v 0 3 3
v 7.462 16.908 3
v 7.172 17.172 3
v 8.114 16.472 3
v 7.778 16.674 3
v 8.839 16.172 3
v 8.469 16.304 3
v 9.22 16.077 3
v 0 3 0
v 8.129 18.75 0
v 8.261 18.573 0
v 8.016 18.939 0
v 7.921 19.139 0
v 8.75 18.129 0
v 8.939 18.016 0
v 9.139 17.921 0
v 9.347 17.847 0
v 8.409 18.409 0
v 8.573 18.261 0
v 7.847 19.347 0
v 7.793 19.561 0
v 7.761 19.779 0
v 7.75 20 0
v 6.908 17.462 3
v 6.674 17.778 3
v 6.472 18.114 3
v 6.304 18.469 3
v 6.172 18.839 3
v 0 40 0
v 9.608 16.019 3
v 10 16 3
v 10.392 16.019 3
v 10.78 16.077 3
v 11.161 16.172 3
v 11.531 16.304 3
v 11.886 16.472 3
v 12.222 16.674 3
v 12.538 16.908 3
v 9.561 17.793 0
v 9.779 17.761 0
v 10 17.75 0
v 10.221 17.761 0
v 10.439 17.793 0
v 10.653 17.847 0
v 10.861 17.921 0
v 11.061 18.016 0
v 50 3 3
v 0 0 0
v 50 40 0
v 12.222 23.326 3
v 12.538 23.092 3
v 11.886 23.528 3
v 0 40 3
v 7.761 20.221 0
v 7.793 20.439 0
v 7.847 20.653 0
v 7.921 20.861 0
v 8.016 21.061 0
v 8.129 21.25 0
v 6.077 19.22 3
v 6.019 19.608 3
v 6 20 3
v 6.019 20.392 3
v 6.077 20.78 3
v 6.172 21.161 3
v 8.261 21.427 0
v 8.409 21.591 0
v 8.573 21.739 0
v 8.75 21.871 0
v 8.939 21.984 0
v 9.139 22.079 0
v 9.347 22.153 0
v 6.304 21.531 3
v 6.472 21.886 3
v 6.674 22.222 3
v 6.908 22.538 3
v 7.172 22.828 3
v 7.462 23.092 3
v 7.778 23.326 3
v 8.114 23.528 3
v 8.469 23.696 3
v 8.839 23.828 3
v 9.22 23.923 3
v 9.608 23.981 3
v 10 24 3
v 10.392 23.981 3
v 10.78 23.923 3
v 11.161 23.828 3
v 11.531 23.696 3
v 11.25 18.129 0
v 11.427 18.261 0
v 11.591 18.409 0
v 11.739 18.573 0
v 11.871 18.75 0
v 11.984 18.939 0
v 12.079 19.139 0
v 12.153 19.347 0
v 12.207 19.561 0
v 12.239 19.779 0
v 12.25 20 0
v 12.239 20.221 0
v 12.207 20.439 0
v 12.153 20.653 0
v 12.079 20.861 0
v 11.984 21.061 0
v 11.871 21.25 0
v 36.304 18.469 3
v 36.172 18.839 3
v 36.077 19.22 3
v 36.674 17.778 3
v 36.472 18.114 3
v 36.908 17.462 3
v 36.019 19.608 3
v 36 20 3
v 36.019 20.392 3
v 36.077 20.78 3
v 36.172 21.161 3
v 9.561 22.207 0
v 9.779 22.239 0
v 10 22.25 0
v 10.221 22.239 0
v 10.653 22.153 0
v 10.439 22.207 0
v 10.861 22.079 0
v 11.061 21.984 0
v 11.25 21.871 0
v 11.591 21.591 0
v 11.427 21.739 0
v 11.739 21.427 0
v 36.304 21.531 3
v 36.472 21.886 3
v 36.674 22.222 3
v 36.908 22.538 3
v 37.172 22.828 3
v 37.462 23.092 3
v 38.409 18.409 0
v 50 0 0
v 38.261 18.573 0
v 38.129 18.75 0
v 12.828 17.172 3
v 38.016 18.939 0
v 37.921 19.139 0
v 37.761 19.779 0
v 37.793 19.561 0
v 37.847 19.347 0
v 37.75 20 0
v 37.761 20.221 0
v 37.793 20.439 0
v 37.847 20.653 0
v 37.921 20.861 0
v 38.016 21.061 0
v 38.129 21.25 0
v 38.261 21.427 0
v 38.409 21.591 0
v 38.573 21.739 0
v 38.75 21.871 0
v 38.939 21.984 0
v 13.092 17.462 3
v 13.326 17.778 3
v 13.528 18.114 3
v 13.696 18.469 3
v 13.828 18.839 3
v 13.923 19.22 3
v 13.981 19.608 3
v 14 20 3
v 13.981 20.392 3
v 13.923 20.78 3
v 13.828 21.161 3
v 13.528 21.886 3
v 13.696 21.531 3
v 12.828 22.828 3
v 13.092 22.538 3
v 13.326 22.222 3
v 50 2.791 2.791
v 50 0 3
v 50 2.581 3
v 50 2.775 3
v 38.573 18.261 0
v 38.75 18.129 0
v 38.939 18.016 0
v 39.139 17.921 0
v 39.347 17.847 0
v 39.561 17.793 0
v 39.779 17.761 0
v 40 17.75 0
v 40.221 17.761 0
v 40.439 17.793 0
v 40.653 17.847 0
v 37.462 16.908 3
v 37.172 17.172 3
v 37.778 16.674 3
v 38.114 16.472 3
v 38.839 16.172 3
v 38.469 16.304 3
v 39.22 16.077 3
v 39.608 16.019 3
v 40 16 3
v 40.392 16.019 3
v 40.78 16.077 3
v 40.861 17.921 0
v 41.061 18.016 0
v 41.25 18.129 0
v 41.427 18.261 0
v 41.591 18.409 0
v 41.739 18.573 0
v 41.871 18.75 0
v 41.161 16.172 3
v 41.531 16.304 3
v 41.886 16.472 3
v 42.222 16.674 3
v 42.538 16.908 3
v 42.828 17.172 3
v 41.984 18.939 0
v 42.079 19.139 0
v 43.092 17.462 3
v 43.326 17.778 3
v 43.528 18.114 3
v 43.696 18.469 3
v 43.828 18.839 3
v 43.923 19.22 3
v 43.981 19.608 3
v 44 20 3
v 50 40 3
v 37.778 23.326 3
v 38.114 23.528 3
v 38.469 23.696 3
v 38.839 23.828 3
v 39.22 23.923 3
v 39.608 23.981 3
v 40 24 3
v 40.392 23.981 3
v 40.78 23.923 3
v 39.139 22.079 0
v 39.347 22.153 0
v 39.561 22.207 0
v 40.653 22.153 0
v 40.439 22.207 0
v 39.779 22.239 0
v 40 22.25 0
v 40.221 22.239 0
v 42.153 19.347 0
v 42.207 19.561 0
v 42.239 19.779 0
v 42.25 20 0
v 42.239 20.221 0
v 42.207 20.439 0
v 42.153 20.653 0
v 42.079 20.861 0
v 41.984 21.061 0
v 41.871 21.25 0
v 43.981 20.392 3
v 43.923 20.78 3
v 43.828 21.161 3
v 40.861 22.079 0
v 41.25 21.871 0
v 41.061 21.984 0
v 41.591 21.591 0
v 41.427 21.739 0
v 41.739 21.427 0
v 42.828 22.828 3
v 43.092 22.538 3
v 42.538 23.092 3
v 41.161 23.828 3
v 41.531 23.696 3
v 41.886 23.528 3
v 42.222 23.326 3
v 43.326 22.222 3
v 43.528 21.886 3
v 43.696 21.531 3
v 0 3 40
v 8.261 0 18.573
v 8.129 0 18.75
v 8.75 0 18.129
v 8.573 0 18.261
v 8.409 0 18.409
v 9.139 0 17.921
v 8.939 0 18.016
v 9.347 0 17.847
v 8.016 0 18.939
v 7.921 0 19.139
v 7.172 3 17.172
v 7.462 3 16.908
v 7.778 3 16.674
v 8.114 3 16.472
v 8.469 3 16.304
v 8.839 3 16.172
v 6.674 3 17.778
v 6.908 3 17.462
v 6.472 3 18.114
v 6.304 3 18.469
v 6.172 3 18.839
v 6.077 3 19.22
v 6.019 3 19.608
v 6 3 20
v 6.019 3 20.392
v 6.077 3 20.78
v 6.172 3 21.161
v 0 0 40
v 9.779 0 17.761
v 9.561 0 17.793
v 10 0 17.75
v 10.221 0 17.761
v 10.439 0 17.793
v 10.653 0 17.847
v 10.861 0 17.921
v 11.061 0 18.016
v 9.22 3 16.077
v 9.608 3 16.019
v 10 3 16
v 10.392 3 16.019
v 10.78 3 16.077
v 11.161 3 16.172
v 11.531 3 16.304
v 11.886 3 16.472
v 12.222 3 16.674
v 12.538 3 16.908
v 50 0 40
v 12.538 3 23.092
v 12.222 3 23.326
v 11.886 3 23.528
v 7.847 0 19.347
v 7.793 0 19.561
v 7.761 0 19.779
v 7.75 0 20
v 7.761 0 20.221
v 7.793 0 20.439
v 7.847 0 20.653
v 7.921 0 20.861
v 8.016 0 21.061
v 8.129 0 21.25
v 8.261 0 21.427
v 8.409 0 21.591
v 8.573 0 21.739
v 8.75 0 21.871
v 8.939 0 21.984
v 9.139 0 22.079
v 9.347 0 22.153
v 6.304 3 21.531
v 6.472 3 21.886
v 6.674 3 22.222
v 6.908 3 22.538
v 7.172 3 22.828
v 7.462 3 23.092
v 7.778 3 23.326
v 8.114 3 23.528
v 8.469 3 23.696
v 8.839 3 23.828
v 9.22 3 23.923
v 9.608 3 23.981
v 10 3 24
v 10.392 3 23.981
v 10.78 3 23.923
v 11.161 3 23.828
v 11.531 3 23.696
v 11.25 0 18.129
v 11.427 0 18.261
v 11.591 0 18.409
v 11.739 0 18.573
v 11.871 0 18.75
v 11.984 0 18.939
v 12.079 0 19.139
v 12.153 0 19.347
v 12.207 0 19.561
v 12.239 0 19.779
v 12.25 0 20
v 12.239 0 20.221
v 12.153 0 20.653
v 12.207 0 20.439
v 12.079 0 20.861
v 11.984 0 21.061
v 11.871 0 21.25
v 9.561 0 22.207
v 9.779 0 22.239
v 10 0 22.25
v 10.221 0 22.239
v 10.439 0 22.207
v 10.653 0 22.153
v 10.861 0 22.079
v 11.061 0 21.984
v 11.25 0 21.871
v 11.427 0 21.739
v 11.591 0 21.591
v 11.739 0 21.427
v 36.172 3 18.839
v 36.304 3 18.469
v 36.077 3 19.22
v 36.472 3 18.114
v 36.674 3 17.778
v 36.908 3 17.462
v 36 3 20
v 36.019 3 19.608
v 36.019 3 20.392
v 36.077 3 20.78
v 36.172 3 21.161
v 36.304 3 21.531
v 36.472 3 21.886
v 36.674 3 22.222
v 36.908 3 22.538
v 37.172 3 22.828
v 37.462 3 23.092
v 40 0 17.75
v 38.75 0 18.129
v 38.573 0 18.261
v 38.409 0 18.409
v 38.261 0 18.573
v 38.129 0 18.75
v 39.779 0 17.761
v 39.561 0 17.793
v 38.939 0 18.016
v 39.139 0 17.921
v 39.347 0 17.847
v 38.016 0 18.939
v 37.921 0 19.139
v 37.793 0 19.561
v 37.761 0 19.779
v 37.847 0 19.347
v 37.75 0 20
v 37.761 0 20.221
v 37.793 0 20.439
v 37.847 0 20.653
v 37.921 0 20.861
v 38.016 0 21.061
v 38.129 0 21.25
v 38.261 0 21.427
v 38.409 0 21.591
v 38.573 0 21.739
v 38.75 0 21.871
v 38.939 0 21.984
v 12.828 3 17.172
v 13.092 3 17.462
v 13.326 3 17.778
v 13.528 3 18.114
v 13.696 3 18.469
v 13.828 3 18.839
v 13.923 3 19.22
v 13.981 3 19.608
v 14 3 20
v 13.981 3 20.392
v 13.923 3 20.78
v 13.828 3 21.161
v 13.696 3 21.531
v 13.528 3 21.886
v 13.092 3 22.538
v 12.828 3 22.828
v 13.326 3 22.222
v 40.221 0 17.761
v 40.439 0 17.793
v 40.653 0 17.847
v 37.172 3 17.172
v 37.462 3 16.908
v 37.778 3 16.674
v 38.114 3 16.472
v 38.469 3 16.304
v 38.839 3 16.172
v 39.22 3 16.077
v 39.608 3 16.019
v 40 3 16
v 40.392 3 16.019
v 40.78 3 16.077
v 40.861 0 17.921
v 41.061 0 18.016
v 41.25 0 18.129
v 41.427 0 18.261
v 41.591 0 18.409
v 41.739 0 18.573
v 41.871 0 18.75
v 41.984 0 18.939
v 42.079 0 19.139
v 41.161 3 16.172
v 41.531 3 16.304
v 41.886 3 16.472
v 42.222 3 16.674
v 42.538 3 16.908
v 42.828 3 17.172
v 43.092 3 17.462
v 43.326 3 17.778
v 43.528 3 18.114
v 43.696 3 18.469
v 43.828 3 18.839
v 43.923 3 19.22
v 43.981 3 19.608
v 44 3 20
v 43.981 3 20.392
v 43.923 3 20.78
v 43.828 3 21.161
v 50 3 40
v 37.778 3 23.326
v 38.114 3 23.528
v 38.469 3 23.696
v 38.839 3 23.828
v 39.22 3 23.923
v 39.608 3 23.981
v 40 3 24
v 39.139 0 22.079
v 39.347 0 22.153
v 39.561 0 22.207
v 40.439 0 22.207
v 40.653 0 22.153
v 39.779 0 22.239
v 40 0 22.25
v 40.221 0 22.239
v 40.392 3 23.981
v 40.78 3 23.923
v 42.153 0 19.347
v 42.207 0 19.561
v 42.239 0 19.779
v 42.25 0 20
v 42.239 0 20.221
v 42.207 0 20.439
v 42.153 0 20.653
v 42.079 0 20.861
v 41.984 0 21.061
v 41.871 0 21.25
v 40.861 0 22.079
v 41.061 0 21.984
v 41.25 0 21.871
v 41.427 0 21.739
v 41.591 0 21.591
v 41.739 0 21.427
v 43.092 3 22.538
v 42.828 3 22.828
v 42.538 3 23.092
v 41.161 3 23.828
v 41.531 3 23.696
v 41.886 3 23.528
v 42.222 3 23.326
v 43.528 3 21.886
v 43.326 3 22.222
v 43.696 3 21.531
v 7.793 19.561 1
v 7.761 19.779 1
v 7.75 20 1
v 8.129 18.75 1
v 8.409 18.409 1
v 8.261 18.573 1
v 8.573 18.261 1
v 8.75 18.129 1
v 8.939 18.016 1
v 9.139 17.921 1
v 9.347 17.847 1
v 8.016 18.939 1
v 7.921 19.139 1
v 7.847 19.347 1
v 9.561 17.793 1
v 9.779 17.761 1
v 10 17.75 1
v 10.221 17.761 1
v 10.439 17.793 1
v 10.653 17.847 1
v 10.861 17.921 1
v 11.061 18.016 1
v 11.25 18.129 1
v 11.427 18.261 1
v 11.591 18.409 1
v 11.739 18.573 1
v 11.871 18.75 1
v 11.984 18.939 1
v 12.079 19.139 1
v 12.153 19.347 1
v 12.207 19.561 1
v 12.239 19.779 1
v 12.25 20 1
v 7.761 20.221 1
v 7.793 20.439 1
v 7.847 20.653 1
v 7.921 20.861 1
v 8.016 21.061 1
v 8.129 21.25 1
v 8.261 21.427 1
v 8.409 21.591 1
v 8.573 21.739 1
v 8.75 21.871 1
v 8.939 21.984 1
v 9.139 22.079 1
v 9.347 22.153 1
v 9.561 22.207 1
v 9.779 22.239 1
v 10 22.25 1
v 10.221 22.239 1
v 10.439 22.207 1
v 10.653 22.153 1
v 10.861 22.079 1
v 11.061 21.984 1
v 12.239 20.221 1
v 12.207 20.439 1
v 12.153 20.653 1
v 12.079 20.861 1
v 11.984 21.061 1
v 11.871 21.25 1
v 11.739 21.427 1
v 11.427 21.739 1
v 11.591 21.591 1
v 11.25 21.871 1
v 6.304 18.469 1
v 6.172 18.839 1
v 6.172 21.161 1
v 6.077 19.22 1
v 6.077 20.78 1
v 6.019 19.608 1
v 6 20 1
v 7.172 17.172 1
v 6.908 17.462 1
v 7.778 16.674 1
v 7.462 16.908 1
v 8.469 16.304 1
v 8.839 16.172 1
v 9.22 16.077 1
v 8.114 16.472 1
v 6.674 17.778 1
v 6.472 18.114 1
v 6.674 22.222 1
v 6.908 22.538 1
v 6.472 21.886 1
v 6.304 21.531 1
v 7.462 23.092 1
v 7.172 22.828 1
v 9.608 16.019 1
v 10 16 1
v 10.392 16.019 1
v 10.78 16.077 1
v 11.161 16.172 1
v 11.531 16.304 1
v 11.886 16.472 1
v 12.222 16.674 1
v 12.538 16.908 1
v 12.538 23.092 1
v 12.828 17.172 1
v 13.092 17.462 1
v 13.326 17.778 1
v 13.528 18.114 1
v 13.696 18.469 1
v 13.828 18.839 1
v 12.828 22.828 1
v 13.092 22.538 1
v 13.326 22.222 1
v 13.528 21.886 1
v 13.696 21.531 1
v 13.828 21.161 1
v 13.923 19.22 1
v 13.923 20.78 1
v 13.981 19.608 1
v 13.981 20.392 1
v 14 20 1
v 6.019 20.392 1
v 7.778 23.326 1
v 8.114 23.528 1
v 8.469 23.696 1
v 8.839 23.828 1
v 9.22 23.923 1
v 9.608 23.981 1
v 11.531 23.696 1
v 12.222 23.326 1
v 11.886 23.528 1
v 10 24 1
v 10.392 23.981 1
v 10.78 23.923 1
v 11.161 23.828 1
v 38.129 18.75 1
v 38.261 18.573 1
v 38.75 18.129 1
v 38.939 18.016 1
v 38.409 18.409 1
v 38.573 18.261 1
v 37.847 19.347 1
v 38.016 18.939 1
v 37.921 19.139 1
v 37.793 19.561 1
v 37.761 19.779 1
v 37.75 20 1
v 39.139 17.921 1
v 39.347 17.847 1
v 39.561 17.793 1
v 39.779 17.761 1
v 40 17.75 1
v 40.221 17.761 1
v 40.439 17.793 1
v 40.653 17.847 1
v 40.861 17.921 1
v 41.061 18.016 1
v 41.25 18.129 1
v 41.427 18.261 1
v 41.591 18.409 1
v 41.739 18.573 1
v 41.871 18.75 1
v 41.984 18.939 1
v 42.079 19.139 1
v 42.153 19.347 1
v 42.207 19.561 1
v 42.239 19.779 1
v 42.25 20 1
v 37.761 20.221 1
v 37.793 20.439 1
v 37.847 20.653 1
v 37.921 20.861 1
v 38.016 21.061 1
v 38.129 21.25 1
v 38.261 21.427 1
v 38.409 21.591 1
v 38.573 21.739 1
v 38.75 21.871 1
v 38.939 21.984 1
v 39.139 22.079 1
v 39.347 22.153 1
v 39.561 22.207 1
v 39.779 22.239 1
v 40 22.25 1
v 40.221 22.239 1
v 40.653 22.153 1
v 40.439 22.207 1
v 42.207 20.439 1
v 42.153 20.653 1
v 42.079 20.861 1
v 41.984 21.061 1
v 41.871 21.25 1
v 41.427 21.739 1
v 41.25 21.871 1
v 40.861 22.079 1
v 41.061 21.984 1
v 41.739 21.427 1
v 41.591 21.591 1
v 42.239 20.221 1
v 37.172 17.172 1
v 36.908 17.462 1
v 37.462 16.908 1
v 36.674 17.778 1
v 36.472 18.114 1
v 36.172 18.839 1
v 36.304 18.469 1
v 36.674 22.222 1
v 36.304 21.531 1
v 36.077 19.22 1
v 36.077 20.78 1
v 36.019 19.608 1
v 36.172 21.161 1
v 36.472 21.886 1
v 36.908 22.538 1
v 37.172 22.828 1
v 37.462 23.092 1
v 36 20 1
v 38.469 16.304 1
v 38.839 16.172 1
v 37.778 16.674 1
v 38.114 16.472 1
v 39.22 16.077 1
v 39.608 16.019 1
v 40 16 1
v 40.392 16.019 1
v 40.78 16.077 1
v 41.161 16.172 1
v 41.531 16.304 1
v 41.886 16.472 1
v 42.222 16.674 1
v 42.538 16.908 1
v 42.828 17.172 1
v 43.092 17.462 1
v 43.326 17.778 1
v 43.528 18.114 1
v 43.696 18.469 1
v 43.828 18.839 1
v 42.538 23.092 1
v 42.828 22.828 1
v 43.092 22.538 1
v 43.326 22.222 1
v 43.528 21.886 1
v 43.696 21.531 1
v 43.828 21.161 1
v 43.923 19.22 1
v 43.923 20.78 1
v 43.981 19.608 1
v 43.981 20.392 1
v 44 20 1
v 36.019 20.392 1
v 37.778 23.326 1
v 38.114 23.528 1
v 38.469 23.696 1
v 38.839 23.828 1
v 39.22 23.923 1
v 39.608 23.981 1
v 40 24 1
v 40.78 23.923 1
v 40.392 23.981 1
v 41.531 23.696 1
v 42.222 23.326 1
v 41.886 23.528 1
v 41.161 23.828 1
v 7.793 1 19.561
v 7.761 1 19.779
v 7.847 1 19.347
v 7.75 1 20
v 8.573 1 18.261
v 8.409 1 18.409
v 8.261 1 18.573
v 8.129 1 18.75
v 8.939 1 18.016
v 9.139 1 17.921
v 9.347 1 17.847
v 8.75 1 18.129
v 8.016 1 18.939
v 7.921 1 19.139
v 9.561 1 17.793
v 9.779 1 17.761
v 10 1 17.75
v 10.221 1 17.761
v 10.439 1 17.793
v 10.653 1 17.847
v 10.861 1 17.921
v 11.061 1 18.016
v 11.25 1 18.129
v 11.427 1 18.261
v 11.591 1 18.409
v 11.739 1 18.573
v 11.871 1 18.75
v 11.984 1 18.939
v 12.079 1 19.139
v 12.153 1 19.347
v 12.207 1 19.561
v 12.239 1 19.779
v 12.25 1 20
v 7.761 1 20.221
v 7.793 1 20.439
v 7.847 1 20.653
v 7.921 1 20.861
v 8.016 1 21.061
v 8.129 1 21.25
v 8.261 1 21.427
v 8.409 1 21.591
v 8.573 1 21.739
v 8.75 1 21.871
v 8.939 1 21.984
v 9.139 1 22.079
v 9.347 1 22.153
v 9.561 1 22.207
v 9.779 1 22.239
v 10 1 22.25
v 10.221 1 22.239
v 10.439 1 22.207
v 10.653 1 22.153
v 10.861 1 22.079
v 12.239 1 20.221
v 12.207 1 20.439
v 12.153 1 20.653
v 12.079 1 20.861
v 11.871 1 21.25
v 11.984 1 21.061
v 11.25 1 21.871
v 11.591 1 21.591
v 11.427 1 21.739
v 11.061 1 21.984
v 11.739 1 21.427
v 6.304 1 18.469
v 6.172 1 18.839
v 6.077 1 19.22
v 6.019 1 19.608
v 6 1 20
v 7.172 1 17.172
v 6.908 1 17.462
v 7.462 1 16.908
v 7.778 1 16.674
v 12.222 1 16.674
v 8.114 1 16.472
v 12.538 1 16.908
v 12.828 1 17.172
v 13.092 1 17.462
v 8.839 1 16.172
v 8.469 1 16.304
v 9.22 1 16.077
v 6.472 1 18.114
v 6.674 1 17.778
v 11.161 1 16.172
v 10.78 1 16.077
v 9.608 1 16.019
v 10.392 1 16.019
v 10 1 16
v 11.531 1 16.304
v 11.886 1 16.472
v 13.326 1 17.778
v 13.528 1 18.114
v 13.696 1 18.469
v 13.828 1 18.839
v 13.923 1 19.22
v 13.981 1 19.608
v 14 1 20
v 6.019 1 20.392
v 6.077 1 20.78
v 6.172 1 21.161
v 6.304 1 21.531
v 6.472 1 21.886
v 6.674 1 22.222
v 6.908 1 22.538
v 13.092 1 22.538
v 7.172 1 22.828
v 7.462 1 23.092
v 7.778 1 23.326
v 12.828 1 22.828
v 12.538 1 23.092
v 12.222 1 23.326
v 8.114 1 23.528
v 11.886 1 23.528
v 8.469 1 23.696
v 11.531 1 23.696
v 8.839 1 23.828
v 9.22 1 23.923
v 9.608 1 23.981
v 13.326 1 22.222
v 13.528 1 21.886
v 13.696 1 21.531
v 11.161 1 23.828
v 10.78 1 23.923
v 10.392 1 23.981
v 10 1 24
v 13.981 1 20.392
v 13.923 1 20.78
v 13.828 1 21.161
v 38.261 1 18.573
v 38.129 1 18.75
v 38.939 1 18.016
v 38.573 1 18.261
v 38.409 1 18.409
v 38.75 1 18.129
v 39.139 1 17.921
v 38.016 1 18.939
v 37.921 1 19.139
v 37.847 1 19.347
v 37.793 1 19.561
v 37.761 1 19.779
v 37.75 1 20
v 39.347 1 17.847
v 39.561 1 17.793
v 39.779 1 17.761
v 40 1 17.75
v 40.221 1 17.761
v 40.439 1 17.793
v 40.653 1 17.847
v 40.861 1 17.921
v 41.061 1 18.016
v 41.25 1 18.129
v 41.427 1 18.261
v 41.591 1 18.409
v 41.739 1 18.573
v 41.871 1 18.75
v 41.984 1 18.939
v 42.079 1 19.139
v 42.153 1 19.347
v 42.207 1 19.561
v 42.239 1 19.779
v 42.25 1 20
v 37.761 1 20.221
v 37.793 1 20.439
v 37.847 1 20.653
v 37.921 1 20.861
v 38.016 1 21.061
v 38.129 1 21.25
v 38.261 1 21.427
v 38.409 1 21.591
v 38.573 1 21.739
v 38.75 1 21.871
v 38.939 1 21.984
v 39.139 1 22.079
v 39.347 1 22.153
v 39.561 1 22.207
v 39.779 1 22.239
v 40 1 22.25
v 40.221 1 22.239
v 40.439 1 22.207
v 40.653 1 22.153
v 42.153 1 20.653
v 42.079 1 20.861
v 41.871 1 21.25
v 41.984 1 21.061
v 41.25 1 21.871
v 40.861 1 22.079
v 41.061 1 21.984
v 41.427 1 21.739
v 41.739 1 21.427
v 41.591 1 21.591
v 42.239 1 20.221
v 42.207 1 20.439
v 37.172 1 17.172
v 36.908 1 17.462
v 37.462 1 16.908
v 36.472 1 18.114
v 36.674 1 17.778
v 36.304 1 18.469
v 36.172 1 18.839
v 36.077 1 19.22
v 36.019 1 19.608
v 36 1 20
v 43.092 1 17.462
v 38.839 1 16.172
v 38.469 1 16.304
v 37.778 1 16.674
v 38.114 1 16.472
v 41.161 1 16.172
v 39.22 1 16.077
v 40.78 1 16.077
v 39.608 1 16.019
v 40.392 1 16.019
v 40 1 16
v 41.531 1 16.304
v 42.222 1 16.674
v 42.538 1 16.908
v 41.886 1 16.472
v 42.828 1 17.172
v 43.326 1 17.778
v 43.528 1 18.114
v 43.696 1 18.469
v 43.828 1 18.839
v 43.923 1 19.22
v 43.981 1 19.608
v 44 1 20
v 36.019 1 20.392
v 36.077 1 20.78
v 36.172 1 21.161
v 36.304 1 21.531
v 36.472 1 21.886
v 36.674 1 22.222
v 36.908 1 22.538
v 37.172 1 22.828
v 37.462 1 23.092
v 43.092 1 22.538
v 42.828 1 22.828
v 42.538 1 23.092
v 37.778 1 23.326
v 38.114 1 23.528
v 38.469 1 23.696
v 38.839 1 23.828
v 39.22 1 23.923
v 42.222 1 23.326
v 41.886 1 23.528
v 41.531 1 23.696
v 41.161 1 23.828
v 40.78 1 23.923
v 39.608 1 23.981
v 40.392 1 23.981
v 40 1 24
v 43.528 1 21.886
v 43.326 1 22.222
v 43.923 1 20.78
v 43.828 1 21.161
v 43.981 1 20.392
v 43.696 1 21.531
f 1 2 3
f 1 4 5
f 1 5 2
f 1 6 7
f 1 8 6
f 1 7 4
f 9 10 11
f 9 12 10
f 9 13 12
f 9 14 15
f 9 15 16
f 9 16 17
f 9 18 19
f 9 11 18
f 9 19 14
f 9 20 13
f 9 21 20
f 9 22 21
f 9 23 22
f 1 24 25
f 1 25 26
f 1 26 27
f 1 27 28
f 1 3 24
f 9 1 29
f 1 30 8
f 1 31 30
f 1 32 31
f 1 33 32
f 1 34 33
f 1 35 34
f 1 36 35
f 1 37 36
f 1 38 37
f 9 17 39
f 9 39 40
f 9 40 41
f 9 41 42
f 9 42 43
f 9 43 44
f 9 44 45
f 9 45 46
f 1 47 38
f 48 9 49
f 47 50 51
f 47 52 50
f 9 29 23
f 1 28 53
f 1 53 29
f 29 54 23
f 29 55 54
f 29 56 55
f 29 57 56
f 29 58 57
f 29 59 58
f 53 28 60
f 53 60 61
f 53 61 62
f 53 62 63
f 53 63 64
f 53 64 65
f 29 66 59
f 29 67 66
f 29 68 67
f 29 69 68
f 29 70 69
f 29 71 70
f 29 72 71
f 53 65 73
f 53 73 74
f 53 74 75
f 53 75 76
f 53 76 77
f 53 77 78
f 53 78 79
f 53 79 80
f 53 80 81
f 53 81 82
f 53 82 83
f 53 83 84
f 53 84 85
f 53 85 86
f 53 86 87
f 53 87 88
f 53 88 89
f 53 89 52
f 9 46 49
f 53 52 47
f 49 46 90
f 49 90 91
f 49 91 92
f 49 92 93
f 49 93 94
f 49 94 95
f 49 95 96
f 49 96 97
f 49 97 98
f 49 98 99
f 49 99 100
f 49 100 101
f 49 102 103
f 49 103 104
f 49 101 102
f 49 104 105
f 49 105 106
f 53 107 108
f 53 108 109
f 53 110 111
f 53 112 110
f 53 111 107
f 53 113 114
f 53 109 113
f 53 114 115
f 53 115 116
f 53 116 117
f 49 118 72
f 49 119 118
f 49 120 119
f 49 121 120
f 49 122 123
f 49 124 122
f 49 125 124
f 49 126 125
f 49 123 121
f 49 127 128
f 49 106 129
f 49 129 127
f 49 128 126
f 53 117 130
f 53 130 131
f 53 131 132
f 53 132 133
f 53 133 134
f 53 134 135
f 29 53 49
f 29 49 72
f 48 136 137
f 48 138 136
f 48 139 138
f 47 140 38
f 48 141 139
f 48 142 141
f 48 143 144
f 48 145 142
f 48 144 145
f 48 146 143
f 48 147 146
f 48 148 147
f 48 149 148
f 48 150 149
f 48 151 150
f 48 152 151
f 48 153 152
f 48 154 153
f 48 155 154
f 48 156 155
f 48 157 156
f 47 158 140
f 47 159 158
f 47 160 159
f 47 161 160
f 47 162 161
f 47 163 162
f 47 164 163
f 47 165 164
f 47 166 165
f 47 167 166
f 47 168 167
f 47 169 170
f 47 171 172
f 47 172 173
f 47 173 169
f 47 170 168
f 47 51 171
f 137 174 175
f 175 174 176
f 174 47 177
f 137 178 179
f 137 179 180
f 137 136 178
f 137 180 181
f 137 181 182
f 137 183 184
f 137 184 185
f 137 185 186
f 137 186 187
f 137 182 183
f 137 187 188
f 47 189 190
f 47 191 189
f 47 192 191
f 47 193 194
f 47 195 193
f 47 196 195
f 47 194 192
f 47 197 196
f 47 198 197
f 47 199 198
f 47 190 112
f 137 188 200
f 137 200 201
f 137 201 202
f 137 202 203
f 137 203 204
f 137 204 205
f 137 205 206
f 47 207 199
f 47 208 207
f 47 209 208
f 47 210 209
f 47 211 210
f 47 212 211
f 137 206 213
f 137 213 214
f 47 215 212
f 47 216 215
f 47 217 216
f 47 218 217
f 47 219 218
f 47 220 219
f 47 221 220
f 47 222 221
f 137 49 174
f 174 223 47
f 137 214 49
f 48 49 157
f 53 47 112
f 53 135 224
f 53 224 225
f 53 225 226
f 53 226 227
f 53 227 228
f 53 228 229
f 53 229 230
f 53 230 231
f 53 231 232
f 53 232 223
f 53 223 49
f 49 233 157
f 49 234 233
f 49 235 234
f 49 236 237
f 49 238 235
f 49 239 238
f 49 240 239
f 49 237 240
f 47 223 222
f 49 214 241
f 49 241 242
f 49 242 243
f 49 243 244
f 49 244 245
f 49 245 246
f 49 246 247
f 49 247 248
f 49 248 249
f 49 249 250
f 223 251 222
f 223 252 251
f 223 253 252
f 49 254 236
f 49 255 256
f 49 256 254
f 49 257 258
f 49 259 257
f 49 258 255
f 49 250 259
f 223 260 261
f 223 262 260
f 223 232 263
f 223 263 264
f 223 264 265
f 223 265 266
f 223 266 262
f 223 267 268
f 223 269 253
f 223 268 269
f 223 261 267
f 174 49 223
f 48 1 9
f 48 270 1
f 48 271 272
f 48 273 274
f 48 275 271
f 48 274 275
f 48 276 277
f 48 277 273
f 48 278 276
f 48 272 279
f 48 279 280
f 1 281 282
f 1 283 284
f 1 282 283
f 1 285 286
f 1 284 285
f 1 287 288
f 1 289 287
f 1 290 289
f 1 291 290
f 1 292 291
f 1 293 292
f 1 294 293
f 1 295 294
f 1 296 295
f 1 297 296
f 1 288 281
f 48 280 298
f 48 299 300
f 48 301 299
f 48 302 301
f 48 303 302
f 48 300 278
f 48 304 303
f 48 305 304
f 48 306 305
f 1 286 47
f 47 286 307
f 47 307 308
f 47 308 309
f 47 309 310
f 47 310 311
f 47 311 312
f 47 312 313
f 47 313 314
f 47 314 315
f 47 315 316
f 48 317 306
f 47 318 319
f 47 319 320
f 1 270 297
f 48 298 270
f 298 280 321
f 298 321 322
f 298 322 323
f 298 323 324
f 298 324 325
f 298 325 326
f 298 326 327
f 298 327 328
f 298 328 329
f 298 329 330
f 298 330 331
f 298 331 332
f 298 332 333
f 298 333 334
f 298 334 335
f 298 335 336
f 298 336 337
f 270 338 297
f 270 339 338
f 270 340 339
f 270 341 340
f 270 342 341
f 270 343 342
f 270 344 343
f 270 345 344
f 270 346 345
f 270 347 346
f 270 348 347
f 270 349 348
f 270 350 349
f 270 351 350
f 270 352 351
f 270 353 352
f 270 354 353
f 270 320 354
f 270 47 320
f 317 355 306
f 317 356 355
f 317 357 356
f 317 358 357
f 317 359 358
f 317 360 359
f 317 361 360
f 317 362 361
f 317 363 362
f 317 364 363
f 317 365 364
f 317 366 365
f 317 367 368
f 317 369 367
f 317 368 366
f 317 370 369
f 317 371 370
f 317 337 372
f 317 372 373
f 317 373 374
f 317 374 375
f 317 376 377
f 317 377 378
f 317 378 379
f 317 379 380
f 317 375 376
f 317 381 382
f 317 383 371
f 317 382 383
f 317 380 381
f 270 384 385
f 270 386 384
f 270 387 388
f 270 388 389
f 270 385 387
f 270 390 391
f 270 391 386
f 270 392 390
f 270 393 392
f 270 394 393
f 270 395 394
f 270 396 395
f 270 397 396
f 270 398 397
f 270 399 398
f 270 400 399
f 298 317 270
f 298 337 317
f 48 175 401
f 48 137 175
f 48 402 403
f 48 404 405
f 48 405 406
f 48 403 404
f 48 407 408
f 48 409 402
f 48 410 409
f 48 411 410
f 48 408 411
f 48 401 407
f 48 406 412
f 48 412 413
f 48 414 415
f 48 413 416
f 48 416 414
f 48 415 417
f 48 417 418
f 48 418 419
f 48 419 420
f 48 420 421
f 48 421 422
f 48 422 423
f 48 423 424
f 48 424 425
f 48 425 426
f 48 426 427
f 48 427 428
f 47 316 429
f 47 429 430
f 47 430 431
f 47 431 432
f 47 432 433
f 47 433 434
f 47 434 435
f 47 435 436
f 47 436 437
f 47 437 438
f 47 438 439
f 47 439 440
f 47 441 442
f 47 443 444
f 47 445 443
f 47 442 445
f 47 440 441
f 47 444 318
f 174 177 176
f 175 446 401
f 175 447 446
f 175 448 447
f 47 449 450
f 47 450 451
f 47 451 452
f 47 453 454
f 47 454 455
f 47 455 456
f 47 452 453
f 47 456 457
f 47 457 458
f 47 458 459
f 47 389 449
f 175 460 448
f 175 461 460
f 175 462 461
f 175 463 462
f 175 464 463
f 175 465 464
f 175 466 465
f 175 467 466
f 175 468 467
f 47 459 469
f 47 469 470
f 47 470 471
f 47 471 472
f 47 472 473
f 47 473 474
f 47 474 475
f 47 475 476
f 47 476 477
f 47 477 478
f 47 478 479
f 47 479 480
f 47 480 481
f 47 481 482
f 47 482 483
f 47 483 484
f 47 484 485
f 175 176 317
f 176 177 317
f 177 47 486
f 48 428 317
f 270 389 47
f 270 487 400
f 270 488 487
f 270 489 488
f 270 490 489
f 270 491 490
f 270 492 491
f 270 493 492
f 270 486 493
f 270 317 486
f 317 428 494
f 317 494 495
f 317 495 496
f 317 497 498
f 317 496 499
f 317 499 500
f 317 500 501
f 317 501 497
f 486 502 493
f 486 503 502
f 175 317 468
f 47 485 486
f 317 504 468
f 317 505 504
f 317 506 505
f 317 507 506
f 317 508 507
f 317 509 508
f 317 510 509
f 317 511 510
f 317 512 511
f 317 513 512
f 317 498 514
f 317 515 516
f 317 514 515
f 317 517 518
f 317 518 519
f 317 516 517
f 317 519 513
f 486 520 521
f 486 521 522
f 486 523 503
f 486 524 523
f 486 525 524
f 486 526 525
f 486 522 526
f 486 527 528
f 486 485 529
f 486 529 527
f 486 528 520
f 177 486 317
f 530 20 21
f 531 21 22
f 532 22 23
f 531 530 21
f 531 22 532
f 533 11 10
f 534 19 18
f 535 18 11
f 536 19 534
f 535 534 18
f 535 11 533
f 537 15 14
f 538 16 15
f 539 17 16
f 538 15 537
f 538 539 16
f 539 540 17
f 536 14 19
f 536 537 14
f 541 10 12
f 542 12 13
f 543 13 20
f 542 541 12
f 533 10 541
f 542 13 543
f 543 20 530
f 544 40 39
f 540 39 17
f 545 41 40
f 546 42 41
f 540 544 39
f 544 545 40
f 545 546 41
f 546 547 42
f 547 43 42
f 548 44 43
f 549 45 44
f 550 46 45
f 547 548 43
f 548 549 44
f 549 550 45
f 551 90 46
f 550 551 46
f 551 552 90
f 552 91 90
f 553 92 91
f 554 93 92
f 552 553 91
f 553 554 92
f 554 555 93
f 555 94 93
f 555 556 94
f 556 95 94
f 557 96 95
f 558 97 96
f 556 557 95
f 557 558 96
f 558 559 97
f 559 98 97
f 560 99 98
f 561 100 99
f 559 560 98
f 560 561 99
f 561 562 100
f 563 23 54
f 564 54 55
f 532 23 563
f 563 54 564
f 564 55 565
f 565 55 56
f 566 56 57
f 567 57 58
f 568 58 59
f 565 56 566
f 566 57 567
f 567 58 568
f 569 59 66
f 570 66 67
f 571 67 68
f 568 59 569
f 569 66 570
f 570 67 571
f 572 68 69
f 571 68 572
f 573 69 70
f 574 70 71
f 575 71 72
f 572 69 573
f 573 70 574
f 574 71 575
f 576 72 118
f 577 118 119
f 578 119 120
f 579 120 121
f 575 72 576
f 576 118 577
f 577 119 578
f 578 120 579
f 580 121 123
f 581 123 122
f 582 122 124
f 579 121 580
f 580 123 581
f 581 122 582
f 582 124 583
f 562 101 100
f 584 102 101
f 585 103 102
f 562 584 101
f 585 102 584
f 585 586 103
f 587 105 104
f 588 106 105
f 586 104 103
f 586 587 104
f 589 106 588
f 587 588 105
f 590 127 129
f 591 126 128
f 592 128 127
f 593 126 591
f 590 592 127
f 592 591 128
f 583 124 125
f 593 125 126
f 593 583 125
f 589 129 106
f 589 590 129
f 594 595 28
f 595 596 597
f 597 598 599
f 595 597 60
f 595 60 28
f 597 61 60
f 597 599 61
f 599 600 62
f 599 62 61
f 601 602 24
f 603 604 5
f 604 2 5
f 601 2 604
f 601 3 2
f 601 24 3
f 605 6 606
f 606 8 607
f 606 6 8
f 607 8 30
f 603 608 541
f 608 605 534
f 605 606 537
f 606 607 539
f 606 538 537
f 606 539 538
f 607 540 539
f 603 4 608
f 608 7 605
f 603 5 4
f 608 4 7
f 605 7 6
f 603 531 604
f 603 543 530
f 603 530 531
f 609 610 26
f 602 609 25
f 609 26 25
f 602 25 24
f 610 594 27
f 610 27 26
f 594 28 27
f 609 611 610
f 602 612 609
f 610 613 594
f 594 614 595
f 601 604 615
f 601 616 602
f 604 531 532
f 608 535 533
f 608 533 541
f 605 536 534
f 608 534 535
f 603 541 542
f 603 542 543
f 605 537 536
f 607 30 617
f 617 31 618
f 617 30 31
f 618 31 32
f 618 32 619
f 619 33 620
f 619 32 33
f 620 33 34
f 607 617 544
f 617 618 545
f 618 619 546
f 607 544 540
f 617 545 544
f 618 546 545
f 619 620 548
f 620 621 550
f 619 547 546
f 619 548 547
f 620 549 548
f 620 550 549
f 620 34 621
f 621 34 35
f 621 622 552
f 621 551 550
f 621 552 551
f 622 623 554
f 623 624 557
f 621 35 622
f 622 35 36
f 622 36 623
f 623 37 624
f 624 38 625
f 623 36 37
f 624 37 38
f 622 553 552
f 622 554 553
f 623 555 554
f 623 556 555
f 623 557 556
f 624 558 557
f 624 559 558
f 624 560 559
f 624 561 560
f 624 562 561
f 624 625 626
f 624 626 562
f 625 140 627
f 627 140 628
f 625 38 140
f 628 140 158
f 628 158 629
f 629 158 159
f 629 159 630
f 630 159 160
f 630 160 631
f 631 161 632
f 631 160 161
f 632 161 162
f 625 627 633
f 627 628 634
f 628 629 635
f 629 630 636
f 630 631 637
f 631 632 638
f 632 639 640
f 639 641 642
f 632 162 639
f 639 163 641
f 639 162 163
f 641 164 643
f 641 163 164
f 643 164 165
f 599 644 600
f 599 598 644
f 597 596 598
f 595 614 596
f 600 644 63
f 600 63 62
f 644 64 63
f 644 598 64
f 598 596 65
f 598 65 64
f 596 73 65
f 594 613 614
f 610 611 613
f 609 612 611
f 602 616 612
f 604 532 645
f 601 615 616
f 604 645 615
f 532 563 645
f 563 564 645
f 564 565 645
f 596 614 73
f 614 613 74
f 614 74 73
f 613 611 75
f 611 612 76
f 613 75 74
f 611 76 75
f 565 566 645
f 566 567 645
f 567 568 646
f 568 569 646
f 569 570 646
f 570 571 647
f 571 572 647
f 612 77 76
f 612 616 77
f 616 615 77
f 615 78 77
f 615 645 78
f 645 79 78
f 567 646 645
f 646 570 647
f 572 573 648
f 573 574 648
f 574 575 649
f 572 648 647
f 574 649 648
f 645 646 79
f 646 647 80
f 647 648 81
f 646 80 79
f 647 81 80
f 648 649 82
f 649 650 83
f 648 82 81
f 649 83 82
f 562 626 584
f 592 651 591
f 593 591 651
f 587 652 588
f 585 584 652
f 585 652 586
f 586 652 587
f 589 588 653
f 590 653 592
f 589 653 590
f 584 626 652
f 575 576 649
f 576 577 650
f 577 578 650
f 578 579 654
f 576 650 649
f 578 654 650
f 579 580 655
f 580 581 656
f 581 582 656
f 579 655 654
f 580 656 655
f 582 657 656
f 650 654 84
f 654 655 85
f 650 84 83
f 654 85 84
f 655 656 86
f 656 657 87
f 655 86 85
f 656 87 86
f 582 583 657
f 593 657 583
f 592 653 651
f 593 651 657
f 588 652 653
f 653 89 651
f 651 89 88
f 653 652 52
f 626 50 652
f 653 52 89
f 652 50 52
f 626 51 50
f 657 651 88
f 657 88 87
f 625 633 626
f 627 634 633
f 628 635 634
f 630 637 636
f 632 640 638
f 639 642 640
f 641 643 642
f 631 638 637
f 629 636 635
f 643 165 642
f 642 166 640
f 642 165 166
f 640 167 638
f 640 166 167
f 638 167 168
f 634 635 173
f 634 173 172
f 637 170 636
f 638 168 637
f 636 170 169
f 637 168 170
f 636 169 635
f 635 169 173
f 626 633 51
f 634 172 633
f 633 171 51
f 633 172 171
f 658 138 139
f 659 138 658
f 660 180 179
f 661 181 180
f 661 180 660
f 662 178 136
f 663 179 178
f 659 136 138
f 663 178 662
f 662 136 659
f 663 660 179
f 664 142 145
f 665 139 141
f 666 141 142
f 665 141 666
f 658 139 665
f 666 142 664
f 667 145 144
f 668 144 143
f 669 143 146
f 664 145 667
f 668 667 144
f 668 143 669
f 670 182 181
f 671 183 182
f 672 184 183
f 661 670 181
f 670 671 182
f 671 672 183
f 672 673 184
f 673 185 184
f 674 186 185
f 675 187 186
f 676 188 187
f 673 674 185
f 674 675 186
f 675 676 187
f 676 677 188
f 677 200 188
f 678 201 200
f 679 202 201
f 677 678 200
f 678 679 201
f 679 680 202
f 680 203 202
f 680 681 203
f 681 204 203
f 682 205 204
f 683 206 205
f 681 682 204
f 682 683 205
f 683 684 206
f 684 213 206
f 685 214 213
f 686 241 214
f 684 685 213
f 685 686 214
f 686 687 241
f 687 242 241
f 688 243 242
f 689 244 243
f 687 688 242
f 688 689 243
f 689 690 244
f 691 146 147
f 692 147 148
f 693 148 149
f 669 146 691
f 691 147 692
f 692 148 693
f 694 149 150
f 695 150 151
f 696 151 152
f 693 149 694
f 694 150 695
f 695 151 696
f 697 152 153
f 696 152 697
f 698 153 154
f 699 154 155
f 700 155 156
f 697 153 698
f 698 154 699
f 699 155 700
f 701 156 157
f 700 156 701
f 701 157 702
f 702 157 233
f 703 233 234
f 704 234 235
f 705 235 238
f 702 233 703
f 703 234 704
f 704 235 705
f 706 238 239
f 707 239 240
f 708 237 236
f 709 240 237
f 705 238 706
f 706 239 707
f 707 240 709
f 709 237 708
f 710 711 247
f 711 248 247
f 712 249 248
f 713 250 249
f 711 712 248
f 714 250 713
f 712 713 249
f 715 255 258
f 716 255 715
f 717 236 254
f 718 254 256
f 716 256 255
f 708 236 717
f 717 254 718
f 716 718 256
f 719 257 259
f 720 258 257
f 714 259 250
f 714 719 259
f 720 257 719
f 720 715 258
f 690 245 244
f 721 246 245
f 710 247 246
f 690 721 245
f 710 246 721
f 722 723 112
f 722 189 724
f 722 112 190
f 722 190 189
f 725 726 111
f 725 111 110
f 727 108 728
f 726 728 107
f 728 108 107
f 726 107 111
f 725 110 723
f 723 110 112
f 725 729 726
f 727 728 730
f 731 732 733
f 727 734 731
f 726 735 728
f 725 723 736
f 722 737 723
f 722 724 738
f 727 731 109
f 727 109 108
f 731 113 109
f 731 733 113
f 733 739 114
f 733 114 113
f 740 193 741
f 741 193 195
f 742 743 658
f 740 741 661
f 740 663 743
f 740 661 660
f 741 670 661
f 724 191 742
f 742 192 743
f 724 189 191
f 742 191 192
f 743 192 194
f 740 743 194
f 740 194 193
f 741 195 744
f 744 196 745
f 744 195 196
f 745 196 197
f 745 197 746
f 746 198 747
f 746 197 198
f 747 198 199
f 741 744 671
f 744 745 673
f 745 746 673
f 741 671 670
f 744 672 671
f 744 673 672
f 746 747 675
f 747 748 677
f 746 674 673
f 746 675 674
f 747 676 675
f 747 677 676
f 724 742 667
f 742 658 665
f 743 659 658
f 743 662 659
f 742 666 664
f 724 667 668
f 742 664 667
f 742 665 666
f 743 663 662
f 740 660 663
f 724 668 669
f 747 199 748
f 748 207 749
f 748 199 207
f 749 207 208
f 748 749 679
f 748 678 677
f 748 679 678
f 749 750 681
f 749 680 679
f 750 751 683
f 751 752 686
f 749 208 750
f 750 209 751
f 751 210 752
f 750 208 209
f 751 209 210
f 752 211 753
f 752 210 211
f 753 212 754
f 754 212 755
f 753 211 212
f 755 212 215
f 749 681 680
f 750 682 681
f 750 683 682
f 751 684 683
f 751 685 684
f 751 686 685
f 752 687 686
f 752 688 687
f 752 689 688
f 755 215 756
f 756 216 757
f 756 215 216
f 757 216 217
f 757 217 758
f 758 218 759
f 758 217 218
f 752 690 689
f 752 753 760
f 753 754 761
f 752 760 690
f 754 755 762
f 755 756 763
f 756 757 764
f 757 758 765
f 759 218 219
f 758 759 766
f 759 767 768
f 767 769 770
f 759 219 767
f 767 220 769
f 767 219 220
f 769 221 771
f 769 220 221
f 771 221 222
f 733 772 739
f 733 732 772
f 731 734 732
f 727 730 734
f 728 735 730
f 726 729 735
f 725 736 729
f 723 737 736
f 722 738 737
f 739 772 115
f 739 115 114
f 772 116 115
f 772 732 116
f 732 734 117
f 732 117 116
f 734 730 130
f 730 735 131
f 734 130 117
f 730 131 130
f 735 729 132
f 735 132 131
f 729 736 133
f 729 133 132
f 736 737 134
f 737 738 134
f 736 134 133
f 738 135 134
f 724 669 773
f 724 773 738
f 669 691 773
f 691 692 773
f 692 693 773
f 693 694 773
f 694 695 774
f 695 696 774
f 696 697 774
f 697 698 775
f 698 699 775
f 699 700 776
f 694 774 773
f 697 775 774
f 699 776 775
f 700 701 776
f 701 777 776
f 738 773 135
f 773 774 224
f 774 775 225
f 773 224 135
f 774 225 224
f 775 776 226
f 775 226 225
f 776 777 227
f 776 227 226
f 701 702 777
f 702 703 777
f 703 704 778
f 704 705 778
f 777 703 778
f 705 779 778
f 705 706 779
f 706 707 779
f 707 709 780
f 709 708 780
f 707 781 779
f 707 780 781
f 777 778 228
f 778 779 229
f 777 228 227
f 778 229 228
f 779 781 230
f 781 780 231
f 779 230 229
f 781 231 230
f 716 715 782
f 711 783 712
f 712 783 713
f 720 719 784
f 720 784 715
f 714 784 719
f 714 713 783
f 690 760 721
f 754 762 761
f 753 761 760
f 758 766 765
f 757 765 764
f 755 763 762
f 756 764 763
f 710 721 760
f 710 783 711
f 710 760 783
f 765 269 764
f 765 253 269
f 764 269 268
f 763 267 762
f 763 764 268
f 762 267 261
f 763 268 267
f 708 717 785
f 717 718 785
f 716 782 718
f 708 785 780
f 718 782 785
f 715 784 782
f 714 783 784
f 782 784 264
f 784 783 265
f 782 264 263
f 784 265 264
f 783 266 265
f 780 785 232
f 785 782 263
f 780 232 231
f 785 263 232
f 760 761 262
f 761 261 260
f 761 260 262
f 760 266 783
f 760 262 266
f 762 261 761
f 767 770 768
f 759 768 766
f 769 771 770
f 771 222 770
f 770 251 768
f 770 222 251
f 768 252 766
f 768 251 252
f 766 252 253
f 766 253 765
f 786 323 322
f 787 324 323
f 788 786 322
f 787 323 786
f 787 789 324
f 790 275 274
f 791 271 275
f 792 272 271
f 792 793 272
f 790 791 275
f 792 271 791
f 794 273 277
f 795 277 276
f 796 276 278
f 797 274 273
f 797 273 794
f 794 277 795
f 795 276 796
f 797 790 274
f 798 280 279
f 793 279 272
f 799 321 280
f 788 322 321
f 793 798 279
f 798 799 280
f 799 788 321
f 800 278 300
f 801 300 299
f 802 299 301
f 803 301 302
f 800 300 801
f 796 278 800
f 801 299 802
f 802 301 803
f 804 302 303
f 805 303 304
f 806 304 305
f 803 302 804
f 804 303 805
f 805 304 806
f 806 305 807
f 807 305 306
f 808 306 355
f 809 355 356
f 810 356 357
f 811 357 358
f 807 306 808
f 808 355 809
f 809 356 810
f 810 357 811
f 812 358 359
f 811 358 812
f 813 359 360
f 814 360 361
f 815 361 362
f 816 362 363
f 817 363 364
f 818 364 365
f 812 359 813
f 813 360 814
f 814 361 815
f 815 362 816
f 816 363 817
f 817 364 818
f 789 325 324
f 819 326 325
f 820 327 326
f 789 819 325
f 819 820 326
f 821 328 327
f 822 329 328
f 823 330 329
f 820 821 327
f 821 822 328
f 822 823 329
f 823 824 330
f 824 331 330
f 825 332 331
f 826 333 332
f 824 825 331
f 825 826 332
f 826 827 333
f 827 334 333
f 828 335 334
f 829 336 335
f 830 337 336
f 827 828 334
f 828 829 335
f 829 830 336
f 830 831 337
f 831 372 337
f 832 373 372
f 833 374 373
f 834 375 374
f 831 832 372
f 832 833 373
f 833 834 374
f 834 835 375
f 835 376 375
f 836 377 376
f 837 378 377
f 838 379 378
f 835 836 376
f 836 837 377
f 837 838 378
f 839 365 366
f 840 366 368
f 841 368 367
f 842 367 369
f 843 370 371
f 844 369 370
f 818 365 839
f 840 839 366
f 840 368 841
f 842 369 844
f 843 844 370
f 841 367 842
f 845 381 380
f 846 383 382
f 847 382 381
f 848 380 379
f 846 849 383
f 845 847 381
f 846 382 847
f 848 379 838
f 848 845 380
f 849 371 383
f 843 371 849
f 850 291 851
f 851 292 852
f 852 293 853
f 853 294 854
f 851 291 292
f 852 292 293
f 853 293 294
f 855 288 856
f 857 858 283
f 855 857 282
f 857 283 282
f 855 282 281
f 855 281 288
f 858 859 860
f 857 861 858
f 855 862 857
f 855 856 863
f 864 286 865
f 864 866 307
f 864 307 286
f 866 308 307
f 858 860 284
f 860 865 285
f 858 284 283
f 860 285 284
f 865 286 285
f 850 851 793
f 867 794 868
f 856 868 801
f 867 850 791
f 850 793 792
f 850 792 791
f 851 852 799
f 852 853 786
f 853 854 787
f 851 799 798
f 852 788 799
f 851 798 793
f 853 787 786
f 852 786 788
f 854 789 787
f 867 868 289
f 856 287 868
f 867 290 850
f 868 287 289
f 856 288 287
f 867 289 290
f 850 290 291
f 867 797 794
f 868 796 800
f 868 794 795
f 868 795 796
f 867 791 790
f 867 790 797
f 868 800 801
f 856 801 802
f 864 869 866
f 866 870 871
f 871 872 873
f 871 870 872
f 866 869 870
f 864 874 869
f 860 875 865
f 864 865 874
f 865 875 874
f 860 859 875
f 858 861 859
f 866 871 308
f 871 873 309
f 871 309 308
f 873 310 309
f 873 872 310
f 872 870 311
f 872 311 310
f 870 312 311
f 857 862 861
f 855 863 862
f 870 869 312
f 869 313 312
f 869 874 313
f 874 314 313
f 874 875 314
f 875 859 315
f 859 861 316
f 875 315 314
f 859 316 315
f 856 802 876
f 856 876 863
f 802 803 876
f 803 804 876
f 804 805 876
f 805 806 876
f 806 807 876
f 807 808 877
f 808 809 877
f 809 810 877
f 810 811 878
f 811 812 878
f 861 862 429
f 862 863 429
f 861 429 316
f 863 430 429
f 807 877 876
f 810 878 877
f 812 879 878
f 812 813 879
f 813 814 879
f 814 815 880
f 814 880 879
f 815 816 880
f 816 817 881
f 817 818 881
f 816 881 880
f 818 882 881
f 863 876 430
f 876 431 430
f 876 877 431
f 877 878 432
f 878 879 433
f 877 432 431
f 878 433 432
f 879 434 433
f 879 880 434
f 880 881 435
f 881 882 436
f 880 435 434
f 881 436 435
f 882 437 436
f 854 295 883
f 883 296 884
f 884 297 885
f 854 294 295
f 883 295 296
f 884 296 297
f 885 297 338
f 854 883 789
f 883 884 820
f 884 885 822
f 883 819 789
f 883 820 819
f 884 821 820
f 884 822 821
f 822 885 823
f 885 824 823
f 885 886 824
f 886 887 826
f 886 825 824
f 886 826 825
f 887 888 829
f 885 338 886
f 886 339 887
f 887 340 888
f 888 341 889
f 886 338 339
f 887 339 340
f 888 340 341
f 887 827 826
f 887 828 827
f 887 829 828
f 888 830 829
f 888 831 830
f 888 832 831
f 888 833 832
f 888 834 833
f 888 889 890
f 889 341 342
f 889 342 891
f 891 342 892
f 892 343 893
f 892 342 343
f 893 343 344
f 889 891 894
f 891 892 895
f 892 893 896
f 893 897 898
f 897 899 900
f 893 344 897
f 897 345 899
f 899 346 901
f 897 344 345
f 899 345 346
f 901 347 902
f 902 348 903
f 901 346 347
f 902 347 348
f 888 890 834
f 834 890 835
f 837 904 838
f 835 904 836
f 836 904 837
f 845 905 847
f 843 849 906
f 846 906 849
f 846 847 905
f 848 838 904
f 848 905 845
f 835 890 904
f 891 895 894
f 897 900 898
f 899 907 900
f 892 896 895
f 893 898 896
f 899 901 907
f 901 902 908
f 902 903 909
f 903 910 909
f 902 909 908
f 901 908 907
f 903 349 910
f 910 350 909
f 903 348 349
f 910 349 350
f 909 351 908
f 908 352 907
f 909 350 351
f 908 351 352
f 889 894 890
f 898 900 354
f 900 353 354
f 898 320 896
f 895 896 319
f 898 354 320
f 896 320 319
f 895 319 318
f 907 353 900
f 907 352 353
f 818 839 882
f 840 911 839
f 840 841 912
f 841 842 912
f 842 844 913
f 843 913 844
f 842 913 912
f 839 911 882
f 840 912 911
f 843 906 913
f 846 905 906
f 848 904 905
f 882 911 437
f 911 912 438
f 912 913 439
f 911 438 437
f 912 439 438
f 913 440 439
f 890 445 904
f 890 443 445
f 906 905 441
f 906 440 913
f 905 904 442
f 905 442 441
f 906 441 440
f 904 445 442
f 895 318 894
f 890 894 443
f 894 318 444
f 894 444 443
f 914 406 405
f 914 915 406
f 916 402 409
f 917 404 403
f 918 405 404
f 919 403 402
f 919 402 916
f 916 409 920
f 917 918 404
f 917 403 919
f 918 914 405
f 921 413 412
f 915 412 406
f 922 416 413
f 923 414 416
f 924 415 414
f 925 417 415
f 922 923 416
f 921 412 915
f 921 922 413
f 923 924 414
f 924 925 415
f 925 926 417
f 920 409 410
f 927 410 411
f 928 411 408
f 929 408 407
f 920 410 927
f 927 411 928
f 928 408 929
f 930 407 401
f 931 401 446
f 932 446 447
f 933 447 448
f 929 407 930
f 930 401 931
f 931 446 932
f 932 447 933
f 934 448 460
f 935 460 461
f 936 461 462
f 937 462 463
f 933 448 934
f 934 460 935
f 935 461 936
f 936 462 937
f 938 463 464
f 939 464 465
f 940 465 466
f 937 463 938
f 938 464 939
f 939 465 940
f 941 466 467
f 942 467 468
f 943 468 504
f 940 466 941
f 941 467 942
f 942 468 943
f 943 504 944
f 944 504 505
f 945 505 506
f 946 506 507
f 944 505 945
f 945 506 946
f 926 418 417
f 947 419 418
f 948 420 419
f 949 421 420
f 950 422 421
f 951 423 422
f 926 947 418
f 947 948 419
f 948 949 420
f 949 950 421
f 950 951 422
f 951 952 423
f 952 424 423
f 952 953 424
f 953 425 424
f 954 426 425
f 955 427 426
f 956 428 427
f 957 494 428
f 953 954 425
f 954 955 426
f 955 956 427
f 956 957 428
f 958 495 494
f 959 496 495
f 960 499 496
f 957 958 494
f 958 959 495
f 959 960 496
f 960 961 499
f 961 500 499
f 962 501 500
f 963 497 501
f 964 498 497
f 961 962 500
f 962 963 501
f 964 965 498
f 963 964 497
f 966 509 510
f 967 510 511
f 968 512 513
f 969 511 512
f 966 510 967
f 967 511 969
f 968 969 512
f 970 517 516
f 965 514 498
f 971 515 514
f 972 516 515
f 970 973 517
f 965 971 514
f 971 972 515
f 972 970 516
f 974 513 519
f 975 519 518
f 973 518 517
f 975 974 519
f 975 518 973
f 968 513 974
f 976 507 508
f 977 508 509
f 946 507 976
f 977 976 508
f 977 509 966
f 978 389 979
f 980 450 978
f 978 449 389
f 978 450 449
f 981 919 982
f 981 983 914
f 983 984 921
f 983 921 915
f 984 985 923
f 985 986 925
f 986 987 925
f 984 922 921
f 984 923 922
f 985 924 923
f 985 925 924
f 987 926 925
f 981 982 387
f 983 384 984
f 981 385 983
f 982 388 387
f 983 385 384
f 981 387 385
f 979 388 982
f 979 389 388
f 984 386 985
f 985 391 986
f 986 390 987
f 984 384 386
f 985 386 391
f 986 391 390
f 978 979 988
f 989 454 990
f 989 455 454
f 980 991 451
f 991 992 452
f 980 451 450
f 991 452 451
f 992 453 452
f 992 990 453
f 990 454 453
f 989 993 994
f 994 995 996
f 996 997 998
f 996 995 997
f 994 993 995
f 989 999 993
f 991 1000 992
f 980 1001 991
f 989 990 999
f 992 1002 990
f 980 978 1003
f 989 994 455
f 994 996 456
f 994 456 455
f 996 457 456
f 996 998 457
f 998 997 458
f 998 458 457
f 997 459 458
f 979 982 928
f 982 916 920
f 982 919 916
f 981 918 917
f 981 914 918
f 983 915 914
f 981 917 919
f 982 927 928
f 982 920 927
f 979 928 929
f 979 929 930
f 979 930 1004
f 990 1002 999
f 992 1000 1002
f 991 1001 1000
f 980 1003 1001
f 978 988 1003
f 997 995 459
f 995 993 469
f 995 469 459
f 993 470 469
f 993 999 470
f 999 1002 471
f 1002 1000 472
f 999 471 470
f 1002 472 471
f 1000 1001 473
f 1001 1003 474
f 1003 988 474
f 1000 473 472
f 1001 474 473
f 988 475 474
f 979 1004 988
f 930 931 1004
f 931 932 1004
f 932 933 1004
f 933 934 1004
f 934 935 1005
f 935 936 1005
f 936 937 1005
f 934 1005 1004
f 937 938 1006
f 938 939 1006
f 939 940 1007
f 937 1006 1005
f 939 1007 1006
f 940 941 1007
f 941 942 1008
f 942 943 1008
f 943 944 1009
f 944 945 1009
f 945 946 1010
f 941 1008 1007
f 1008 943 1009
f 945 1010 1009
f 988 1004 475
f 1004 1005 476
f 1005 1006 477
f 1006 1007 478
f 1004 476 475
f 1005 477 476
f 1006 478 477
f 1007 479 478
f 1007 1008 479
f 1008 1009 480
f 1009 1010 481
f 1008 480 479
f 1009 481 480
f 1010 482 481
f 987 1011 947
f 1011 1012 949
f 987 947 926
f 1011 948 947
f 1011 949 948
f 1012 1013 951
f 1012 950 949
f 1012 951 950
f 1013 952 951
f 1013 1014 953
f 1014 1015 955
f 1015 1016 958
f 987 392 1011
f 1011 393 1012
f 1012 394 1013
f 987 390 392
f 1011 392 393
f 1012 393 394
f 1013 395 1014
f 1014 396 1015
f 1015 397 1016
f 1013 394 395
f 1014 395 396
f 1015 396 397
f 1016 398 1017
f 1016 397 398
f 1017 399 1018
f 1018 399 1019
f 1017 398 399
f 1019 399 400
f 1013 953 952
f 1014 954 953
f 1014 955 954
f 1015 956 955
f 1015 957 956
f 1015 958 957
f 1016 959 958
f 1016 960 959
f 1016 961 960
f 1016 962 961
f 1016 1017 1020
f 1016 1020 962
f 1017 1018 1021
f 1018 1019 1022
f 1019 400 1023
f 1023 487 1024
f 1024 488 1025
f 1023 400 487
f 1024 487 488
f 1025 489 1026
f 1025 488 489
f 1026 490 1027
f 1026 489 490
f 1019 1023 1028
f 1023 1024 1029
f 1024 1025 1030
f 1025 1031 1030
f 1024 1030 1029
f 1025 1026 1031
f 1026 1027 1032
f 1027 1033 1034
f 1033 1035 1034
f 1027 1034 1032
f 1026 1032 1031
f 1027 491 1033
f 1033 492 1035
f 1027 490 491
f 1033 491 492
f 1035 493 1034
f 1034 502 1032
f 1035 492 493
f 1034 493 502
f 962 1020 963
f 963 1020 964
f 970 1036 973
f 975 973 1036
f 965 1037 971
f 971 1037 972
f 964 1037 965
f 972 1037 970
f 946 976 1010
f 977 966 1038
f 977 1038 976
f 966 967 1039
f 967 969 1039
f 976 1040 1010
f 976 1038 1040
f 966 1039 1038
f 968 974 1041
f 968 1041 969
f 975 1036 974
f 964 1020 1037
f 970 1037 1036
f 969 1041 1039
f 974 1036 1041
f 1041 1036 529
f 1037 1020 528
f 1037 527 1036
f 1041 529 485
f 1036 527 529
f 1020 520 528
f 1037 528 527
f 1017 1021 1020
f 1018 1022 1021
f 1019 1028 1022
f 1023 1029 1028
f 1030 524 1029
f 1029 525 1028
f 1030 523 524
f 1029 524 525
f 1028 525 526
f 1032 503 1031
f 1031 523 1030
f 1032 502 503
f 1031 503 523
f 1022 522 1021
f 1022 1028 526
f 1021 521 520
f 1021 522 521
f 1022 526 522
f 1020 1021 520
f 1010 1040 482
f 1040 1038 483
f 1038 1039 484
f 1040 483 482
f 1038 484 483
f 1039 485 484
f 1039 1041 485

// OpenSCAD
// L-bracket with countersunk (counterbored) M4 holes
// Dimensions
w = 50;      // width (X)
d = 40;      // depth of horizontal flange (Y)
h = 40;      // height of vertical flange (Z)
t = 3;       // thickness

// Holes
dh = 4.5;    // through hole diameter
ds = 8;      // counterbore diameter
sd = 2;      // counterbore depth
edge = 10;   // hole offset from side edges along X

$fn = 64;

difference() {
  // L-bracket body: inner corner at origin, horizontal +Y, vertical +Z
  union() {
    // Horizontal flange: X=w, Y=d, Z=t
    cube([w, d, t], center=false);
    // Vertical flange: X=w, Y=t, Z=h
    cube([w, t, h], center=false);
  }

  // Horizontal flange holes (axis along Z), countersink from top (+Z)
  for (x = [edge, w - edge]) {
    // Through hole
    translate([x, d/2, -1])
      cylinder(h = t + 2, d = dh);
    // Counterbore from top face
    translate([x, d/2, t - sd])
      cylinder(h = sd, d = ds);
  }

  // Vertical flange holes (axis along Y), countersink from outside face (+Y)
  for (x = [edge, w - edge]) {
    // Through hole (centered, long enough to pass through thickness)
    translate([x, t/2, h/2])
      rotate([90, 0, 0])
        cylinder(h = t + 6, d = dh, center=true);
    // Counterbore from outside face at Y = +t, depth sd toward -Y
    translate([x, t, h/2])
      rotate([90, 0, 0])
        cylinder(h = sd, d = ds, center=false);
  }
}
